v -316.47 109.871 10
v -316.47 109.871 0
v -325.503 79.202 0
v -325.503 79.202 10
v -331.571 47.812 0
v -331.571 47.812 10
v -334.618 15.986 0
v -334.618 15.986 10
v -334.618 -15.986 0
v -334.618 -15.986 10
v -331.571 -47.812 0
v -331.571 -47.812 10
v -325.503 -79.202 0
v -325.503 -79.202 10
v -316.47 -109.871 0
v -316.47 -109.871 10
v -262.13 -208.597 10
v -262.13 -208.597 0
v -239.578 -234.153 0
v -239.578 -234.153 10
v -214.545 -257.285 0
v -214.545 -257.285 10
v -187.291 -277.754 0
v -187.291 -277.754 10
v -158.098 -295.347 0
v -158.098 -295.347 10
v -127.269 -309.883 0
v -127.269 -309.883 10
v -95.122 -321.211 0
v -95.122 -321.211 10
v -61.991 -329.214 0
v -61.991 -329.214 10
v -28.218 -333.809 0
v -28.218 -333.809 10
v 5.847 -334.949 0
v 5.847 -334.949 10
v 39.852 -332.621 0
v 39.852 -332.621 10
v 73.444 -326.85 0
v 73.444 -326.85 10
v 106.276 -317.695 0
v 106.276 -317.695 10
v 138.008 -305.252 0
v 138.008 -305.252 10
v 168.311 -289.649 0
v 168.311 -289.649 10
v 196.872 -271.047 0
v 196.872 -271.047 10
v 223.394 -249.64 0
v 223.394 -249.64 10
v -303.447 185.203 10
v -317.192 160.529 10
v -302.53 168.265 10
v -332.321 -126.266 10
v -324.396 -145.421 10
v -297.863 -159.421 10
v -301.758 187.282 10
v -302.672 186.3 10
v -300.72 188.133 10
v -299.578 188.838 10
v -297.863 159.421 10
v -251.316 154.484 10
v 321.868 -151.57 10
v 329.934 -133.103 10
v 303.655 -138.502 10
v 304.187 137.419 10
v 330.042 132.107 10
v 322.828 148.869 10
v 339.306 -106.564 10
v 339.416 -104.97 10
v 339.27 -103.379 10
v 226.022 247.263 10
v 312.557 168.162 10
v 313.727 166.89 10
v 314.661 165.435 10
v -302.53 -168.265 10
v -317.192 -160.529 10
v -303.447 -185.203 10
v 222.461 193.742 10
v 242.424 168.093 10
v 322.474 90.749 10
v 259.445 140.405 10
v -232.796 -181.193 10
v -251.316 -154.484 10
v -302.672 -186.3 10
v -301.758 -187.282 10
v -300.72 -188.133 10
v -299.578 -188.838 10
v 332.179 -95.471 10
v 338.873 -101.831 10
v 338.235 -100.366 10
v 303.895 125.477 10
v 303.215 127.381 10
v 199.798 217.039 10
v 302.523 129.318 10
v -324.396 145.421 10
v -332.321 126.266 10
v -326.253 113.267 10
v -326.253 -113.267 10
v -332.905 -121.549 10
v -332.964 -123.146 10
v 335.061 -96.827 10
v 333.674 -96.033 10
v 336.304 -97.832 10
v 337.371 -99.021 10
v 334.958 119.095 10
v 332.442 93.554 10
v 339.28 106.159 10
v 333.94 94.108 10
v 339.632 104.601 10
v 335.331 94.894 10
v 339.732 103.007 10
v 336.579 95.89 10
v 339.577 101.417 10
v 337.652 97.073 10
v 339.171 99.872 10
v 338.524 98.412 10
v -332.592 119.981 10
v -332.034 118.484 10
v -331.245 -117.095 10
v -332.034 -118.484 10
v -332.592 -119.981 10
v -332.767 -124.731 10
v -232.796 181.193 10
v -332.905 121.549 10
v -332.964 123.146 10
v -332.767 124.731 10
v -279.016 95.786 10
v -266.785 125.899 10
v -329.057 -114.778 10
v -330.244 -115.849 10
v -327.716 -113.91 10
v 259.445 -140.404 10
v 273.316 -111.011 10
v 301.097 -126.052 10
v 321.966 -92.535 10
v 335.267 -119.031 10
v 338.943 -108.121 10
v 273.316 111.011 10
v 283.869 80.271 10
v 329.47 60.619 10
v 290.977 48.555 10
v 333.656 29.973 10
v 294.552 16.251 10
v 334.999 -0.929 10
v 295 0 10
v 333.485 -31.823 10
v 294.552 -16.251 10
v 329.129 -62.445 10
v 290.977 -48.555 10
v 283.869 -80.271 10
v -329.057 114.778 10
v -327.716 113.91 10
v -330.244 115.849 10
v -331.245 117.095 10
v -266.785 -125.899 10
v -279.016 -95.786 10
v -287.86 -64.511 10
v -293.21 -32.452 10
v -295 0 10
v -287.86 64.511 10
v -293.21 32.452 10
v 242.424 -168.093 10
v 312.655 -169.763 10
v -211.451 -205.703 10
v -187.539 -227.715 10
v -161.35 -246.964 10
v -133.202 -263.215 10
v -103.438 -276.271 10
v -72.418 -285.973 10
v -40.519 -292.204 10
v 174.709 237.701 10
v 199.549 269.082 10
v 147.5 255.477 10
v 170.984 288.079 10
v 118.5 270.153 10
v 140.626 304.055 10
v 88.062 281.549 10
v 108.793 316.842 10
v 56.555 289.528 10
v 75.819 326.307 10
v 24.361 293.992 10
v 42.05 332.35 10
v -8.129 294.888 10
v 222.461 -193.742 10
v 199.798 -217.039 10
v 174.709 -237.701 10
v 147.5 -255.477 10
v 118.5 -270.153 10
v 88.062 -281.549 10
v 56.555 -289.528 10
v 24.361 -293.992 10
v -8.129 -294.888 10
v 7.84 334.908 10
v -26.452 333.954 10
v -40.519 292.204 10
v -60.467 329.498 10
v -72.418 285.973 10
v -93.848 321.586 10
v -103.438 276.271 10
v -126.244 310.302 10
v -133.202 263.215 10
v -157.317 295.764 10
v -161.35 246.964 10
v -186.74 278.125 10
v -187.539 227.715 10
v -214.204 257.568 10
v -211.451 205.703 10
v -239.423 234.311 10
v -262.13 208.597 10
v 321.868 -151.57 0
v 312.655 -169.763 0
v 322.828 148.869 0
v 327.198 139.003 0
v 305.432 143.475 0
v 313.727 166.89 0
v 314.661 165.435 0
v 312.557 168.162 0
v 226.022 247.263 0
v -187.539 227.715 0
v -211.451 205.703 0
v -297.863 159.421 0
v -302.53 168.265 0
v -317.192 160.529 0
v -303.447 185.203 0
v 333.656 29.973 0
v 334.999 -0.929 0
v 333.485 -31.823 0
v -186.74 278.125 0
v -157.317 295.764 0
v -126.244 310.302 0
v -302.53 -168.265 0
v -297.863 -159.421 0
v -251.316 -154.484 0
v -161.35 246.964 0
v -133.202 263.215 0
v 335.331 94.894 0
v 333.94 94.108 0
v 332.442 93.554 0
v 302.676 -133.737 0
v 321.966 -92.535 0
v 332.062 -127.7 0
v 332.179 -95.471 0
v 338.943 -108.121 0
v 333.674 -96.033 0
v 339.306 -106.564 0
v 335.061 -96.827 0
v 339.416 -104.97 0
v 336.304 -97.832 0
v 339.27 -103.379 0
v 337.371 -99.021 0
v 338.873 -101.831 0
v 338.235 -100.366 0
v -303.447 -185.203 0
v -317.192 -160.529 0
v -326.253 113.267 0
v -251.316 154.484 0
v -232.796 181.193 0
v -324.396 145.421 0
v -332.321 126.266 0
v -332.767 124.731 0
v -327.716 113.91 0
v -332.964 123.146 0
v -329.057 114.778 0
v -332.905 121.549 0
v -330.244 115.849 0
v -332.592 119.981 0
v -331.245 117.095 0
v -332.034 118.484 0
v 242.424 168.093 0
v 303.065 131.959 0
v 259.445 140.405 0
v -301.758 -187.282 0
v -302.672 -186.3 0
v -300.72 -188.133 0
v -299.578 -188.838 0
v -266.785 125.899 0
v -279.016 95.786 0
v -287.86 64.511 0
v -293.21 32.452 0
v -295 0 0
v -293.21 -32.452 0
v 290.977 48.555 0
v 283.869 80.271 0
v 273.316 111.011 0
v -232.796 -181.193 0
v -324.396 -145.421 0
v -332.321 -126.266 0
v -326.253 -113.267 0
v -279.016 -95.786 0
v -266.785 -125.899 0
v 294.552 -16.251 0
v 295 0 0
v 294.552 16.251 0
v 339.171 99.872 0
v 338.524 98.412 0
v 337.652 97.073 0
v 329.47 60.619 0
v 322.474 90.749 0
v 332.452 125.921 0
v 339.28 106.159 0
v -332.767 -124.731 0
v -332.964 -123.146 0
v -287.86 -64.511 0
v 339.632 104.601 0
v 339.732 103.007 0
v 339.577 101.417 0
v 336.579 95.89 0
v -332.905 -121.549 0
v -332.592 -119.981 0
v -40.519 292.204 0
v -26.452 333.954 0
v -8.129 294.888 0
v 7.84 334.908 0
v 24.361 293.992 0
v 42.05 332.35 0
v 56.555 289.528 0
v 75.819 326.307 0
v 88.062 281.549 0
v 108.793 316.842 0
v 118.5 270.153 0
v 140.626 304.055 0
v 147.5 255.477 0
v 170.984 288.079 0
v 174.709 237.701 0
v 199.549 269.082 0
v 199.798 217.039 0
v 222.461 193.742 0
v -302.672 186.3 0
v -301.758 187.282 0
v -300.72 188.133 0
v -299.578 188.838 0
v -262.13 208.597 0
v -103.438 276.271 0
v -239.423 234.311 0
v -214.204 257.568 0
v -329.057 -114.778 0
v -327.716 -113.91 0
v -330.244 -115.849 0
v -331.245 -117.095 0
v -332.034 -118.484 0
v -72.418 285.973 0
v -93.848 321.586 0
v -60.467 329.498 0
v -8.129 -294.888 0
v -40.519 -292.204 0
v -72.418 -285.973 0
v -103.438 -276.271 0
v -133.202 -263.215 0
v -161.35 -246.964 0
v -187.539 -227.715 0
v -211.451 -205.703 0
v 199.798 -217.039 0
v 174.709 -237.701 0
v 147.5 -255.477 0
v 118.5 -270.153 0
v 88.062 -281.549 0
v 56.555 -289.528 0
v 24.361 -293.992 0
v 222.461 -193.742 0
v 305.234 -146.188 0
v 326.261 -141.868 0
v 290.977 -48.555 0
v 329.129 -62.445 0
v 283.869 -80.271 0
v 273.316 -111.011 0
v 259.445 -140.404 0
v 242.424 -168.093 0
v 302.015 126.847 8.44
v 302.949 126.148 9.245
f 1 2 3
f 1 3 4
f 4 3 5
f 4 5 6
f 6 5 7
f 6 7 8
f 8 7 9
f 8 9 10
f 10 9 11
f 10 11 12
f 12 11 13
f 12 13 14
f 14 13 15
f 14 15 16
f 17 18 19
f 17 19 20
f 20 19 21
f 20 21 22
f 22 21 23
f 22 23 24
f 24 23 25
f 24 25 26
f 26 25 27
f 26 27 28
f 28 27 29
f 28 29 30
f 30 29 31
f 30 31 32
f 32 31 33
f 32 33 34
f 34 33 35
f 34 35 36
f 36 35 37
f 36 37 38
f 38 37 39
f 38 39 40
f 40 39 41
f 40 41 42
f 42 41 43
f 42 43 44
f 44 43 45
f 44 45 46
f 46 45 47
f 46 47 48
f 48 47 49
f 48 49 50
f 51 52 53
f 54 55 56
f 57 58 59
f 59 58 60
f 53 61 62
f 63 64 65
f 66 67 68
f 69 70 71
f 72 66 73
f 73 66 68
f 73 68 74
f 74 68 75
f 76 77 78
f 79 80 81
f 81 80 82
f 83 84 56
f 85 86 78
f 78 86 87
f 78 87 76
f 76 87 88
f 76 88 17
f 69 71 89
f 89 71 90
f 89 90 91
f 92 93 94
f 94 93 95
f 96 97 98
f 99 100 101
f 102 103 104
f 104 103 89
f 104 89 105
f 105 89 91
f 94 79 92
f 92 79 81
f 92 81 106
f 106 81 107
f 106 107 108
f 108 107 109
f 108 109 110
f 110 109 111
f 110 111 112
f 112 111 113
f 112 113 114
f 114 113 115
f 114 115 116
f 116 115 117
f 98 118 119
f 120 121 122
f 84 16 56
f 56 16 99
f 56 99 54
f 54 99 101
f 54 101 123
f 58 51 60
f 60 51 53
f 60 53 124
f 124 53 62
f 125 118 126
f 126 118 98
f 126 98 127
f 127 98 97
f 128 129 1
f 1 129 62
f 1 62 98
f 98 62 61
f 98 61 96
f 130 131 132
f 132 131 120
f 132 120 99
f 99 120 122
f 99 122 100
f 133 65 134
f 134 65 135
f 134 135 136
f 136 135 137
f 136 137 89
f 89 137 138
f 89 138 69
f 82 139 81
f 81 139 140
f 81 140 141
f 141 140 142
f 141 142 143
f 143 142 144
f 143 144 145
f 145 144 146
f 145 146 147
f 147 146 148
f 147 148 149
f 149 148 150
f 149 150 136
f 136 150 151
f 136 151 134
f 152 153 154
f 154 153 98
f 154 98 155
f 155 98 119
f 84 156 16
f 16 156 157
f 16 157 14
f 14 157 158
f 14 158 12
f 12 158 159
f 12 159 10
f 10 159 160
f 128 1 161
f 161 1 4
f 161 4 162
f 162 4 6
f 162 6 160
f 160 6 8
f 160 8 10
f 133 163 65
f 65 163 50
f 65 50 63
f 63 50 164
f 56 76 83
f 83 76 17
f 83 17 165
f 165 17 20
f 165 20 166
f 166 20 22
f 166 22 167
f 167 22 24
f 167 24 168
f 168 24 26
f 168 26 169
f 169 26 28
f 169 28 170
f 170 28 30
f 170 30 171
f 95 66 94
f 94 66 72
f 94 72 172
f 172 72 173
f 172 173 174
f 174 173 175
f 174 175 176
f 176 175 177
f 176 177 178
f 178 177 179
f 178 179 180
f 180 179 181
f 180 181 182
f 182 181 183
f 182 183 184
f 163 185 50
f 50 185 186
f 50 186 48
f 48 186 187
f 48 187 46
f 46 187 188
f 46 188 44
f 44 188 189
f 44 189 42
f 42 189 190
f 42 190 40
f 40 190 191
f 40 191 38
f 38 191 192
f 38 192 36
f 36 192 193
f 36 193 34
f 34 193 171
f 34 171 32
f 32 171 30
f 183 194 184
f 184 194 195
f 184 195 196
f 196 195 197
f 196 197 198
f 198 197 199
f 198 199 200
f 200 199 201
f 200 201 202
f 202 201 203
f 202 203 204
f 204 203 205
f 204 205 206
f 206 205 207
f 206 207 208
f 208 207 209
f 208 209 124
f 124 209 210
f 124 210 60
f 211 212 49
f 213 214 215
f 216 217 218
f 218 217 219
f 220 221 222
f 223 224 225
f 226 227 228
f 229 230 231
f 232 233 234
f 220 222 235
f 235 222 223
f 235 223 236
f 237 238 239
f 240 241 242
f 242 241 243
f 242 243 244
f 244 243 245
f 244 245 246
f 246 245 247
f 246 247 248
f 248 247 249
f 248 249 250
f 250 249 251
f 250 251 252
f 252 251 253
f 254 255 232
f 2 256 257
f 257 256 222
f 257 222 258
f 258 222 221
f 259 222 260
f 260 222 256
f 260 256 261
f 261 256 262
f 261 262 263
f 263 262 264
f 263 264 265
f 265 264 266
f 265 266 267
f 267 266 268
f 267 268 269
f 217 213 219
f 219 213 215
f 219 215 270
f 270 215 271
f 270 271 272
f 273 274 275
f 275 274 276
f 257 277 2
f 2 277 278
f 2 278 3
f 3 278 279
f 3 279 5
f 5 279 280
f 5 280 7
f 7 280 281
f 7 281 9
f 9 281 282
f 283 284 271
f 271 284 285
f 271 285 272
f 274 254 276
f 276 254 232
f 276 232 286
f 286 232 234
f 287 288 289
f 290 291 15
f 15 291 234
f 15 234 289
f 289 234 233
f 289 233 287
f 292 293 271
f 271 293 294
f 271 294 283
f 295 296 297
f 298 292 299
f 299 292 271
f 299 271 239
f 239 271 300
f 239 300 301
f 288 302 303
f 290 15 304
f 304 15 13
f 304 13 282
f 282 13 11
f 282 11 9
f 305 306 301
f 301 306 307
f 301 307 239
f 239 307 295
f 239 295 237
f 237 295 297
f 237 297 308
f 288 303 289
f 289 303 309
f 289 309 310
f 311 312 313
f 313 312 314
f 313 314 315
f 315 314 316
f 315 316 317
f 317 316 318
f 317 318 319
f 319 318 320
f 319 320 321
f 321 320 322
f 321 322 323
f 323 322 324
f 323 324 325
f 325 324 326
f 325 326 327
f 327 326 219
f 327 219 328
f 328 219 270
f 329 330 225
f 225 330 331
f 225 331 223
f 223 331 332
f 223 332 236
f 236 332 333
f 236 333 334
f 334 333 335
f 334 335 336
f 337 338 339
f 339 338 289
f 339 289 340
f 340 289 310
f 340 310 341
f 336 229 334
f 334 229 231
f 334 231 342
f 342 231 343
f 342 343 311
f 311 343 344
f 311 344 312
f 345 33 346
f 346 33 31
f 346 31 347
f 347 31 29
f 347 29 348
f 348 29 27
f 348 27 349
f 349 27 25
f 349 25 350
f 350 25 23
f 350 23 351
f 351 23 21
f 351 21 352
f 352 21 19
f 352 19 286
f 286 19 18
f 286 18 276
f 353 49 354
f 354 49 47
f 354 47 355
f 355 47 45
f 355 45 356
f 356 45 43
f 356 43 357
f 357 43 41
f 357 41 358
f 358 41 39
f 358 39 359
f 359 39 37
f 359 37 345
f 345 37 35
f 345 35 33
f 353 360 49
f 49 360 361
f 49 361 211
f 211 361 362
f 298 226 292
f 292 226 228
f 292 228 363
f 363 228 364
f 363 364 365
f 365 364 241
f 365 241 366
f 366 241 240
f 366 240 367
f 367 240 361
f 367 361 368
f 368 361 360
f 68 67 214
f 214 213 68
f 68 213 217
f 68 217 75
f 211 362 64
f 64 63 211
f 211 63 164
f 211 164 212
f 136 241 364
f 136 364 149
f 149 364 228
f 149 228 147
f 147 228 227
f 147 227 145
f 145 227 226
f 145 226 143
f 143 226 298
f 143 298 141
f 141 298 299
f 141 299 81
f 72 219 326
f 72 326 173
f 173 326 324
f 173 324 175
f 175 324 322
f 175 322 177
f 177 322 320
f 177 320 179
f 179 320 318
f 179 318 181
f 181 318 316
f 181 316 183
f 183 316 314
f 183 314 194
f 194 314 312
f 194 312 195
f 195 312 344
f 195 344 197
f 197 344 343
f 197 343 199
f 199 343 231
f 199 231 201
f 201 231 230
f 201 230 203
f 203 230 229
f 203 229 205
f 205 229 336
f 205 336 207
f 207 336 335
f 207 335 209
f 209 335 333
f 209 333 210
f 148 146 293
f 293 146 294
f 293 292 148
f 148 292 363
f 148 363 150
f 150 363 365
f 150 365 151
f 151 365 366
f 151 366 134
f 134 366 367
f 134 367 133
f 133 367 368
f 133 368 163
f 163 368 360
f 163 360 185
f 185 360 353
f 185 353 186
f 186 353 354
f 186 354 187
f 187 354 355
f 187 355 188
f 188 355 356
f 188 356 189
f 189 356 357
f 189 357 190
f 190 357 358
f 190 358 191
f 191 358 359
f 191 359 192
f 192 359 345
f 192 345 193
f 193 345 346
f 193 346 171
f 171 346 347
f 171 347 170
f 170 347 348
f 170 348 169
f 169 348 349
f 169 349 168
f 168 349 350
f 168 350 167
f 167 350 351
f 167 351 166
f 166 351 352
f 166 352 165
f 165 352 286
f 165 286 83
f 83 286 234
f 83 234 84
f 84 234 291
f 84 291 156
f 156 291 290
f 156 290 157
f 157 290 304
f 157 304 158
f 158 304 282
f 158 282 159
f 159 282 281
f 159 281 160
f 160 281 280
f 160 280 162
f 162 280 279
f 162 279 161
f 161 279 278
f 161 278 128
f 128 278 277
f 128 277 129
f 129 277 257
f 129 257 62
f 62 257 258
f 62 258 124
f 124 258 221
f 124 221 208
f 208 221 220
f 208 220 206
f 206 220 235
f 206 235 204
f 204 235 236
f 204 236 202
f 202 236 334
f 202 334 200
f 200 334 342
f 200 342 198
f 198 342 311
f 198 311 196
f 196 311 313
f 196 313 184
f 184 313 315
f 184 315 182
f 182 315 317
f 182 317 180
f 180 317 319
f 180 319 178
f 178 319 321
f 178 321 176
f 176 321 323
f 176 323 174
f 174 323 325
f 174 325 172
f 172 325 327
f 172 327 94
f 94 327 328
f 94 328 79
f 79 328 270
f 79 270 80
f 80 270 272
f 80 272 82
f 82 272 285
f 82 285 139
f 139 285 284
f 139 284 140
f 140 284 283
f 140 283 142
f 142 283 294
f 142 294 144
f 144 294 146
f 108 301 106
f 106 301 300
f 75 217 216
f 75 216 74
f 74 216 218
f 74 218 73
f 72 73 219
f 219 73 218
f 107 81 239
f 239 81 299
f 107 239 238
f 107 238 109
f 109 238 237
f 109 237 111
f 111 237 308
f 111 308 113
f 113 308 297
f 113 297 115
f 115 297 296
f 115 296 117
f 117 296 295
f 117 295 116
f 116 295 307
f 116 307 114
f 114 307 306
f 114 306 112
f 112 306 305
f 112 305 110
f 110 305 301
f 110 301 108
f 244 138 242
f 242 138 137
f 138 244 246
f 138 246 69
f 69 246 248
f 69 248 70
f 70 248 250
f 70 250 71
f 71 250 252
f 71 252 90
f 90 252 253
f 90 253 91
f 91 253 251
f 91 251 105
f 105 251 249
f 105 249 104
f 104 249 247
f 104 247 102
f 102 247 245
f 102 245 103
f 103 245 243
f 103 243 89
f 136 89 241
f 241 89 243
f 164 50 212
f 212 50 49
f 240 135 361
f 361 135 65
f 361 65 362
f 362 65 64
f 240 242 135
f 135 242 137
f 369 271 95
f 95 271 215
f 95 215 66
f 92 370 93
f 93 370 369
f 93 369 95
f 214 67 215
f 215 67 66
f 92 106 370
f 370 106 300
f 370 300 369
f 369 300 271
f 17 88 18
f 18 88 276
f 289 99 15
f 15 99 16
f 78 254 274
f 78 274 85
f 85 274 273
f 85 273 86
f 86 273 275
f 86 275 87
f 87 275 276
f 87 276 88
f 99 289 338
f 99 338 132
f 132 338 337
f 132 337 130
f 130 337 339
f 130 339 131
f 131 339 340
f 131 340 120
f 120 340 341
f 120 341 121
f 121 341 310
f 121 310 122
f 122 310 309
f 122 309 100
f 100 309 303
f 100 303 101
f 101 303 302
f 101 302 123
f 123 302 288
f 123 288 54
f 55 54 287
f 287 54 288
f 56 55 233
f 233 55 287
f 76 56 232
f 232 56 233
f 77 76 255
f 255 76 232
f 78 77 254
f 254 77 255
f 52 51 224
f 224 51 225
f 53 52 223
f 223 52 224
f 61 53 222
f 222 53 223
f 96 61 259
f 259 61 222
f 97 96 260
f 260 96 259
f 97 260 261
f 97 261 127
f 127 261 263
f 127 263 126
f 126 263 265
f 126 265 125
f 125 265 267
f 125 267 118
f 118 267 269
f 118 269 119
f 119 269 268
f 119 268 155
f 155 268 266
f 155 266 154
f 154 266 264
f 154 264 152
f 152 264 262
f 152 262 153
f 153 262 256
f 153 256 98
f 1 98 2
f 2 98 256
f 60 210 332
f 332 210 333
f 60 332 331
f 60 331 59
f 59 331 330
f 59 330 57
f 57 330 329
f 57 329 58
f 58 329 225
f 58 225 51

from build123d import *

# Parameters (mm, degrees)
SKETCH1_R            = 335
SKETCH1_R_2          = 295
BOSS_EXTRUDE1_DEPTH  = 10
BOSS_EXTRUDE2_DEPTH  = 10
BOSS_EXTRUDE3_DEPTH  = 10
CUT_EXTRUDE1_DEPTH   = 10
CUT_EXTRUDE2_START   = 272.424930167
CUT_EXTRUDE2_DEPTH   = 38.548591659
CUT_EXTRUDE2_START_2 = 161.824552733
CUT_EXTRUDE2_2_DEPTH = 10
BOSS_EXTRUDE4_DEPTH  = 10


with BuildPart() as part:
    # Sketch1 → Boss-Extrude1 (new body)
    with BuildSketch(Plane.XY):
        Circle(SKETCH1_R)
        Circle(SKETCH1_R_2, mode=Mode.SUBTRACT)
    extrude(amount=BOSS_EXTRUDE1_DEPTH)

    # Sketch2 → Boss-Extrude2 (add)
    with BuildSketch(Plane(origin=(0, 0, 0), x_dir=(-1, 0, 0), z_dir=(0, 0, -1))):
        with BuildLine():
            ThreePointArc((-322.474278085, 90.748773952), (-285.195118694, 175.7519396), (-226.022138309, 247.263003691))
            Line((-226.022138309, 247.263003691), (-312.556910604, 168.161908985))
            ThreePointArc((-312.556910604, 168.161908985), (-313.727388299, 166.889496734), (-314.661210657, 165.434496124))
            ThreePointArc((-314.661210657, 165.434496124), (-328.310849458, 136.353350264), (-339.27949001, 106.158738023))
            ThreePointArc((-339.27949001, 106.158738023), (-338.523562212, 98.412053492), (-332.442347906, 93.553928275))
            Line((-332.442347906, 93.553928275), (-322.474278085, 90.748773952))
        make_face()
    extrude(amount=-BOSS_EXTRUDE2_DEPTH)

    # Sketch3 → Boss-Extrude3 (add)
    with BuildSketch(Plane(origin=(0, 0, 0), x_dir=(-1, 0, 0), z_dir=(0, 0, -1))):
        with BuildLine():
            Line((-289.450839465, -149.430532958), (-290.086949825, -136.323752762))
            Line((-290.086949825, -136.323752762), (-321.966145398, -92.535405211))
            Line((-321.966145398, -92.535405211), (-332.178557921, -95.470526635))
            ThreePointArc((-332.178557921, -95.470526635), (-338.234587628, -100.365745681), (-338.943329669, -108.120508737))
            ThreePointArc((-338.943329669, -108.120508737), (-327.253686464, -139.562351058), (-312.654741, -169.763476834))
            Line((-312.654741, -169.763476834), (-223.394344885, -249.639673677))
            Line((-223.394344885, -249.639673677), (-289.450839465, -149.430532958))
        make_face()
    extrude(amount=-BOSS_EXTRUDE3_DEPTH)

    # Sketch4 → Cut-Extrude1 (cut)
    with BuildSketch(Plane(origin=(23.906119202, -116.35832345, 93.20136559), x_dir=(0.9873859847265816, 0.12357681316719145, -0.0989832733999036), z_dir=(-0.15833166823323438, 0.7706481888305408, -0.6172782613106412))):
        Polygon((282.331330651, 83.607742228), (286.950805192, 120.032776555), (337.459038649, 113.627250716), (329.847523561, 53.609667359), (279.339290104, 60.015193198), align=None)
    extrude(amount=-CUT_EXTRUDE1_DEPTH, mode=Mode.SUBTRACT)

    # Cut-Extrude2: read off the stored shape, not the designer's step
    # Cut-Extrude2 outline → Cut-Extrude2 (cut)
    with BuildSketch(Plane(origin=(0, 0, 0), x_dir=(0.20124905404319107, 0.9795401054815064, 0), z_dir=(0.9795401054815065, -0.20124905404319107, 0)).offset(CUT_EXTRUDE2_START)):
        Polygon((202.006915017, 0), (195.824910476, 10), (184.068330185, 10), (190.250334726, 0), align=None)
    extrude(amount=CUT_EXTRUDE2_DEPTH, mode=Mode.SUBTRACT)

    # Cut-Extrude2 2 outline → Cut-Extrude2 2 (cut)
    with BuildSketch(Plane(origin=(0, 0, 0), x_dir=(0.9852397845422891, -0.14476117541924635, -0.09136065370990885), z_dir=(0.1711799256778192, 0.8331845496216821, 0.5258335661753164)).offset(CUT_EXTRUDE2_START_2)):
        with BuildLine():
            Line((280.153711914, 76.574004203), (278.423879054, 60.562054707))
            add(Edge.make_bspline(
                [(278.423879054, 60.562054707), (279.04318666, 59.849827211), (279.679221342, 59.165584066), (280.331358402, 58.511847756)],
                knots=[0.202262646, 0.202262646, 0.202262646, 0.202262646, 0.204525626, 0.204525626, 0.204525626, 0.204525626], degree=3))
            Line((280.331358402, 58.511847756), (282.258121917, 76.346656647))
            Line((282.258121917, 76.346656647), (282.436738997, 78))
            Line((282.436738997, 78), (280.307767758, 78))
            Line((280.307767758, 78), (280.153711914, 76.574004203))
        make_face()
    extrude(amount=CUT_EXTRUDE2_2_DEPTH, mode=Mode.SUBTRACT)

    # Sketch6 → Boss-Extrude4 (add)
    with BuildSketch(Plane(origin=(0, 0, 0), x_dir=(-1, 0, 0), z_dir=(0, 0, -1))):
        with BuildLine():
            Line((297.863422842, -159.420809844), (324.396421164, -145.420809844))
            ThreePointArc((324.396421164, -145.420809844), (328.498305309, -135.901116291), (332.320896217, -126.265877963))
            ThreePointArc((332.320896217, -126.265877963), (332.034149526, -118.483971626), (326.252641154, -113.267224475))
            Line((326.252641154, -113.267224475), (309.887866806, -107.585760677))
            Line((309.887866806, -107.585760677), (279.768360506, -168.96857635))
            Line((279.768360506, -168.96857635), (279.768360506, -180.275251772))
            Line((279.768360506, -180.275251772), (256.883838664, -211.365229457))
            Line((256.883838664, -211.365229457), (299.577700502, -188.838033003))
            ThreePointArc((299.577700502, -188.838033003), (301.757845667, -187.282127202), (303.446809055, -185.203358702))
            ThreePointArc((303.446809055, -185.203358702), (310.564518318, -173.00268773), (317.191935305, -160.528895148))
            Line((317.191935305, -160.528895148), (302.530089508, -168.265142618))
            Line((302.530089508, -168.265142618), (297.863422842, -159.420809844))
        make_face()
        with BuildLine():
            Line((324.396421164, 145.420809844), (297.863422842, 159.420809844))
            Line((297.863422842, 159.420809844), (302.530089508, 168.265142618))
            Line((302.530089508, 168.265142618), (317.191935305, 160.528895148))
            ThreePointArc((317.191935305, 160.528895148), (310.564518318, 173.00268773), (303.446809055, 185.203358702))
            ThreePointArc((303.446809055, 185.203358702), (301.757845667, 187.282127202), (299.577700502, 188.838033003))
            Line((299.577700502, 188.838033003), (256.883838664, 211.365229457))
            Line((256.883838664, 211.365229457), (279.768360506, 180.275251772))
            Line((279.768360506, 180.275251772), (279.768360506, 168.96857635))
            Line((279.768360506, 168.96857635), (309.887866806, 107.585760677))
            Line((309.887866806, 107.585760677), (326.252641154, 113.267224475))
            ThreePointArc((326.252641154, 113.267224475), (332.034149526, 118.483971626), (332.320896217, 126.265877963))
            ThreePointArc((332.320896217, 126.265877963), (328.498305309, 135.901116291), (324.396421164, 145.420809844))
        make_face()
    extrude(amount=-BOSS_EXTRUDE4_DEPTH)


solid = part.part
